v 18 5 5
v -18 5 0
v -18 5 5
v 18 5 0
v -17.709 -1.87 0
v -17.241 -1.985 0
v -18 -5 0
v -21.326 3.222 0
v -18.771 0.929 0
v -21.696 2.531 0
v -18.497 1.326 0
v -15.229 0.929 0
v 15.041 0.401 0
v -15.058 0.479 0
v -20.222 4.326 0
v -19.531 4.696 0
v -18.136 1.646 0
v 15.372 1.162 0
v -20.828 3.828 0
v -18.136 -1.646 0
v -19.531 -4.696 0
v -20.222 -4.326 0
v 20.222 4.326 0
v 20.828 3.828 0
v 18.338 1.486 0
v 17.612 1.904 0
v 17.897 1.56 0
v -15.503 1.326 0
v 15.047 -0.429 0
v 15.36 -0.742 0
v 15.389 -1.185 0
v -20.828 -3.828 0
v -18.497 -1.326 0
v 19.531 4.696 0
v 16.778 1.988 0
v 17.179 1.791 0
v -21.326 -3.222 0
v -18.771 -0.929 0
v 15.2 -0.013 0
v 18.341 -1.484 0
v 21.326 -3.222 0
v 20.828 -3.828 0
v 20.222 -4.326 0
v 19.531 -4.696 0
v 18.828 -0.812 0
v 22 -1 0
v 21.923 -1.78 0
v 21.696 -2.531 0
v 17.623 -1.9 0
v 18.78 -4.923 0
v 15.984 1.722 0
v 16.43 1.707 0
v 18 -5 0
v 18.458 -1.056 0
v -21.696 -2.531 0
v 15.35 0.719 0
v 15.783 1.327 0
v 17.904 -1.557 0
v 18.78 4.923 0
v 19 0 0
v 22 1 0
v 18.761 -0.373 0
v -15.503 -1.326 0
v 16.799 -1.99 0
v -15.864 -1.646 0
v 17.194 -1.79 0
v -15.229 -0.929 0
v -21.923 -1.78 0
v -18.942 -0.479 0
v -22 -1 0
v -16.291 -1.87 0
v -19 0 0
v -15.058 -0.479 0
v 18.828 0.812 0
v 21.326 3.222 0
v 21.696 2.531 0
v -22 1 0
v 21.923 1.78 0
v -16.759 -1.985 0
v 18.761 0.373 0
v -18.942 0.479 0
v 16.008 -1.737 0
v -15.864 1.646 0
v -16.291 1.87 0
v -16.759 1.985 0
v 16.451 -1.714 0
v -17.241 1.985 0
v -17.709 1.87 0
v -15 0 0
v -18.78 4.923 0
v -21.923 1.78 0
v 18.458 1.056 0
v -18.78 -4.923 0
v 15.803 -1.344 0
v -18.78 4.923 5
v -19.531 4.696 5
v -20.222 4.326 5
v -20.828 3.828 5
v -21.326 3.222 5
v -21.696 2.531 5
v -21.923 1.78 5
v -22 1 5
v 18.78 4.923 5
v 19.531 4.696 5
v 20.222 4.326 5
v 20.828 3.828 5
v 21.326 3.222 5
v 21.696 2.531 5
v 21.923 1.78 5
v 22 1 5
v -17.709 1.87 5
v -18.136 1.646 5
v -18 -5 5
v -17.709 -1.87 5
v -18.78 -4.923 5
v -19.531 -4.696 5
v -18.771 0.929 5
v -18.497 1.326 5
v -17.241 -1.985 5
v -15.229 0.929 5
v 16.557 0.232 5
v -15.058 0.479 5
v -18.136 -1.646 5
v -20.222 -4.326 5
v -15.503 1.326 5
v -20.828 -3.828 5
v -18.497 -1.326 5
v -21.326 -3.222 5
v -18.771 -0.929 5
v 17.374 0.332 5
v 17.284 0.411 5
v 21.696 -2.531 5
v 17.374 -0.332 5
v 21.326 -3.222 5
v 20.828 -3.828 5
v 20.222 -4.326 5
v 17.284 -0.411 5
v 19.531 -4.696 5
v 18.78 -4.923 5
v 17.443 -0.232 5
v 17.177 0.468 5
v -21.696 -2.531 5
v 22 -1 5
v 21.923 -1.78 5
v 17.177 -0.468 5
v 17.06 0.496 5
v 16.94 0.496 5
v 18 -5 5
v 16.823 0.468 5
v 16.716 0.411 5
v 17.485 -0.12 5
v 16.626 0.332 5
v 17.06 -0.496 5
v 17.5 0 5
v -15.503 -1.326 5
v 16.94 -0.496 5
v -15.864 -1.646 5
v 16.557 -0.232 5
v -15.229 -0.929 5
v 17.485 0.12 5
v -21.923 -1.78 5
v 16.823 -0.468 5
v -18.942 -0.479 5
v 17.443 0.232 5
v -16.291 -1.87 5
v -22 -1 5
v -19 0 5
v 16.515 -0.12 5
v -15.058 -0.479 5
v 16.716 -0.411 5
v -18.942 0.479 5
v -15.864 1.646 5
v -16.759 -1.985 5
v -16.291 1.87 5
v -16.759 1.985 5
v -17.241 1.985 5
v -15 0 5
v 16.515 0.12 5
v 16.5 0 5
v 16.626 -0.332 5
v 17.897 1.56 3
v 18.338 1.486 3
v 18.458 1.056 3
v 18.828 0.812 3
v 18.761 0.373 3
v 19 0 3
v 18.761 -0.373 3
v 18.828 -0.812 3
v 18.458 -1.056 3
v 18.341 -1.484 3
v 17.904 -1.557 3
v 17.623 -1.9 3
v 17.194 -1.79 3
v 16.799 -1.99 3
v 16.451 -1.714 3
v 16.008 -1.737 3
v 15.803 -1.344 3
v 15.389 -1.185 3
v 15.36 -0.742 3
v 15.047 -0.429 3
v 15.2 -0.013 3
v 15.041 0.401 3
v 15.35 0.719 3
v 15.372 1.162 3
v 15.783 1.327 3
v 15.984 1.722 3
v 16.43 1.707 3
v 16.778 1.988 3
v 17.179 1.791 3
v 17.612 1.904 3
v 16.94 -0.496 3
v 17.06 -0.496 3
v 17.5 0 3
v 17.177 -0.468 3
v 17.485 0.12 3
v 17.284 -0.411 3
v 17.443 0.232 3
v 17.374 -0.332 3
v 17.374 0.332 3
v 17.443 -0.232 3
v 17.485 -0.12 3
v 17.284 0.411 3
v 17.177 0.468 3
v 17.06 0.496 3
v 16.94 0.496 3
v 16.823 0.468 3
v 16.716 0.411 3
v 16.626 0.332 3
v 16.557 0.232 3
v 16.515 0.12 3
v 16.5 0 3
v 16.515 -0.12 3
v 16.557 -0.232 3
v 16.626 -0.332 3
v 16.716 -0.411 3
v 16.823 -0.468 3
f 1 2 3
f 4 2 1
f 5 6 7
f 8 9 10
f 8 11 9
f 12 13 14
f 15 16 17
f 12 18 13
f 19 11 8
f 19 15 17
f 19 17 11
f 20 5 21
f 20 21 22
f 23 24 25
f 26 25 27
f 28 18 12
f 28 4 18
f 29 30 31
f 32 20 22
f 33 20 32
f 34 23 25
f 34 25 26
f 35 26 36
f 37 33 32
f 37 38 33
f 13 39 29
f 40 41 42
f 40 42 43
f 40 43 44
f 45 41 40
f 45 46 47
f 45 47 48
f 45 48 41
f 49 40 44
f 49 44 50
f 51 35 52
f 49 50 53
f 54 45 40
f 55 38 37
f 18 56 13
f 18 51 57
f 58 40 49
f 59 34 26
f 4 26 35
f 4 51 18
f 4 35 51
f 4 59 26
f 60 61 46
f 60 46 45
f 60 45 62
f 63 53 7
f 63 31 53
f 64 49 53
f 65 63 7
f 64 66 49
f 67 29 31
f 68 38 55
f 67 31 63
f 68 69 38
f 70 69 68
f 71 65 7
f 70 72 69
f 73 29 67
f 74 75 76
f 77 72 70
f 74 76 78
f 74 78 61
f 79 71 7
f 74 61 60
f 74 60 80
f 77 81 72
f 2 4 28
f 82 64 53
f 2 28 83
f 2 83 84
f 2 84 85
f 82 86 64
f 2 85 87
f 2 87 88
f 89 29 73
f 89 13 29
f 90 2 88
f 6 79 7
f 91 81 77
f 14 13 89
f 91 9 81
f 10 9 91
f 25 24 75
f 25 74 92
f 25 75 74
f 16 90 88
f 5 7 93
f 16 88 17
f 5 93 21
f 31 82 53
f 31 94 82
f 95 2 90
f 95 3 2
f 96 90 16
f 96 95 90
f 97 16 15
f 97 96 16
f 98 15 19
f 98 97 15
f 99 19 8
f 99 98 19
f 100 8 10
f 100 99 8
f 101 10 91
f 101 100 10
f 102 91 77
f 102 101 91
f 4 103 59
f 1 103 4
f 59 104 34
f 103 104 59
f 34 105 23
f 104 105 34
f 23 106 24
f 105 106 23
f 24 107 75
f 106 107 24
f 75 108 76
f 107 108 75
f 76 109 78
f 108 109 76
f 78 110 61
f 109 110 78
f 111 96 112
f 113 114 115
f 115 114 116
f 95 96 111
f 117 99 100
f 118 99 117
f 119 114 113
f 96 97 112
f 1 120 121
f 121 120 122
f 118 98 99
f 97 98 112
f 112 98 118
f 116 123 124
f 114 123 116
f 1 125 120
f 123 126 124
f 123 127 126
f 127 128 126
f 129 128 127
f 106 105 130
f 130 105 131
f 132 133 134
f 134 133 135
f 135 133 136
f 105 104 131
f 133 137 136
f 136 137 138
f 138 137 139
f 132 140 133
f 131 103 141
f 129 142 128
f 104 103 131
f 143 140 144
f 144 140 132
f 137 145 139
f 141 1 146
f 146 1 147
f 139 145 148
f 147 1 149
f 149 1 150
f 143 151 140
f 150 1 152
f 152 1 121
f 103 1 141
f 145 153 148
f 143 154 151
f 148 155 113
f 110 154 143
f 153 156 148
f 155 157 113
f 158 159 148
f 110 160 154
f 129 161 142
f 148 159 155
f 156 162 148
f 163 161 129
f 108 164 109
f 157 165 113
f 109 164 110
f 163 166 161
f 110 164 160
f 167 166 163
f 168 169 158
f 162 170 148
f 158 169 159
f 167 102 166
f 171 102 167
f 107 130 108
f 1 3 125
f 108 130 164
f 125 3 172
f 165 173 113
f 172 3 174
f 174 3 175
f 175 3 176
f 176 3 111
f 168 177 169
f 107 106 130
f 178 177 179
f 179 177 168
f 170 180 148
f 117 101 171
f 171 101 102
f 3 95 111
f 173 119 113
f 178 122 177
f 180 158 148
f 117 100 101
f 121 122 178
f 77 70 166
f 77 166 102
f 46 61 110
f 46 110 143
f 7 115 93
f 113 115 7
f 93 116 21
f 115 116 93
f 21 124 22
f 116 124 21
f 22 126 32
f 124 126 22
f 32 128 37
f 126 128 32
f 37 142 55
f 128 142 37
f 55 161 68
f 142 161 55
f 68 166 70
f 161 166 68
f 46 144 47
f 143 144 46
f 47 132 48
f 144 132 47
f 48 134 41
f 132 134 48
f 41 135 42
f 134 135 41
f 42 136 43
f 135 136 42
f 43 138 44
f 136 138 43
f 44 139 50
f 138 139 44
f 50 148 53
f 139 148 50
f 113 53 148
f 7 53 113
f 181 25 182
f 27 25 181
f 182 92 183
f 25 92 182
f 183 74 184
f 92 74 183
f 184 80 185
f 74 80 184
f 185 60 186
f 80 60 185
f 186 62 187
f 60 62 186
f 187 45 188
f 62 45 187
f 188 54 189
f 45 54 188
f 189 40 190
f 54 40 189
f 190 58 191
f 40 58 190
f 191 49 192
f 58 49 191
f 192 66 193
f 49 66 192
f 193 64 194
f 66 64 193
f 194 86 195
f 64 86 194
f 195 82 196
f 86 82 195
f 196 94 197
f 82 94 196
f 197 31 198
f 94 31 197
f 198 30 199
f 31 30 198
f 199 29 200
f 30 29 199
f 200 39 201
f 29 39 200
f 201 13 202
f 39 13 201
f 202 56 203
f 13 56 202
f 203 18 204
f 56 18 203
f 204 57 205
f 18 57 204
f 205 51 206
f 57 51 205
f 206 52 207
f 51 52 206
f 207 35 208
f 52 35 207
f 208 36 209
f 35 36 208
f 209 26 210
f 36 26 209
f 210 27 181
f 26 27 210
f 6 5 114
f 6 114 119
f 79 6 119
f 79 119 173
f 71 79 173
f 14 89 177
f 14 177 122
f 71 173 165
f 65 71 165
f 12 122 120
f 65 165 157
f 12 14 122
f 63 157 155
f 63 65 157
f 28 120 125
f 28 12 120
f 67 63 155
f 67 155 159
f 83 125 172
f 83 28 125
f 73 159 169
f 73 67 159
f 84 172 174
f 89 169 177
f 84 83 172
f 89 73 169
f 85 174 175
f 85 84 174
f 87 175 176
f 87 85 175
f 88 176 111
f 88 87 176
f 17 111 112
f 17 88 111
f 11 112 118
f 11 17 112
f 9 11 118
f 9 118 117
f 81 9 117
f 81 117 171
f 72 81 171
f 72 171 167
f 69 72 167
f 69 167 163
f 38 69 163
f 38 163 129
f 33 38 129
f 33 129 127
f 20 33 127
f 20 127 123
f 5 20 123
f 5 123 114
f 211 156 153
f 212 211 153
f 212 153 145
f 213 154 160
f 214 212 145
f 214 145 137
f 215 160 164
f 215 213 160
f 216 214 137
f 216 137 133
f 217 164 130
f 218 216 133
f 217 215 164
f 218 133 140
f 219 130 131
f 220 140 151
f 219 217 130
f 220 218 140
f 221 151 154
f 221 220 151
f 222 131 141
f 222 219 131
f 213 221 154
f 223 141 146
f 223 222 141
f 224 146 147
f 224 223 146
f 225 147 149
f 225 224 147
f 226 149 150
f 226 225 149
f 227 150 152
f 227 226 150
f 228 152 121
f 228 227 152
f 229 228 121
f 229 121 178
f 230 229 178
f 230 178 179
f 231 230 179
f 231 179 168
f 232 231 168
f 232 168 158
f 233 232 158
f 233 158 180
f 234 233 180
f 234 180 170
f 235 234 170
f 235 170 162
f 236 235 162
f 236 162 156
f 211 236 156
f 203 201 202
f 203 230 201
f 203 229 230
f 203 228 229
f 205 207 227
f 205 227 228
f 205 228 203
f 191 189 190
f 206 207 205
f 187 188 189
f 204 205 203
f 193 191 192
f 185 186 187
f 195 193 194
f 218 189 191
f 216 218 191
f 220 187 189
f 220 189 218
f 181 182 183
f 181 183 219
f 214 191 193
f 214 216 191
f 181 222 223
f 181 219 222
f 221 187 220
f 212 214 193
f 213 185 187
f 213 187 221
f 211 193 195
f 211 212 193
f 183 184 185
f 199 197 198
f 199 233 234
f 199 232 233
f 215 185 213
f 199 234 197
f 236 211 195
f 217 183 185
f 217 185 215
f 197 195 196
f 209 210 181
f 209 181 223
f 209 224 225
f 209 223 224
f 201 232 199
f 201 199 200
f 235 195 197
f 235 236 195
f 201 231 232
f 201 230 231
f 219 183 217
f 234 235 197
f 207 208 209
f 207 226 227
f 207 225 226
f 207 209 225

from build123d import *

# Parameters (mm, degrees)
PAD001_DEPTH = 4
SKETCH_W     = 44
SKETCH_H     = 10
SKETCH_R     = 2
SKETCH_R_2   = 0.5
PAD_DEPTH    = 5
FILLET_R     = 4


with BuildPart() as body001:
    # Sketch001 → Pad001 (new body)
    with BuildSketch(Plane.XY):
        Polygon((0.897343, 1.560377), (1.338059, 1.486472), (1.457743, 1.055929), (1.827866, 0.81173), (1.760844, 0.373401), (2, 0), (1.760844, -0.373401), (1.827866, -0.81173), (1.457743, -1.055929), (1.341095, -1.483734), (0.903715, -1.556695), (0.623475, -1.900336), (0.194127, -1.789501), (-0.201465, -1.989827), (-0.548876, -1.714274), (-0.991727, -1.736801), (-1.1974, -1.343962), (-1.611279, -1.184813), (-1.63981, -0.742308), (-1.953475, -0.428878), (-1.799954, -0.012879), (-1.959412, 0.400881), (-1.650264, 0.718768), (-1.628067, 1.161635), (-1.216508, 1.32669), (-1.016478, 1.722432), (-0.569861, 1.707413), (-0.221793, 1.987664), (0.179488, 1.791029), (0.611809, 1.904124), align=None)
    extrude(amount=PAD001_DEPTH)


with BuildPart() as body001_1:
    # Body001 placement: moved
    add(body001.part.moved(Location((17, 0, -1))))


with BuildPart() as cut:
    # Sketch → Pad (new body)
    with BuildSketch(Plane.XY):
        Rectangle(SKETCH_W, SKETCH_H)
        with Locations((-17, 0)):
            Circle(SKETCH_R, mode=Mode.SUBTRACT)
        with Locations((17, 0)):
            Circle(SKETCH_R_2, mode=Mode.SUBTRACT)
    extrude(amount=PAD_DEPTH)

    # Fillet
    fillet_edges = [cut.edges().sort_by_distance(p)[0] for p in [
        (-22, 5, 2.5),
        (-22, -5, 2.5),
        (22, -5, 2.5),
        (22, 5, 2.5),
    ]]
    fillet(fillet_edges, radius=FILLET_R)

    # Cut: cut Body001
    add(body001_1.part, mode=Mode.SUBTRACT)


solid = cut.part
